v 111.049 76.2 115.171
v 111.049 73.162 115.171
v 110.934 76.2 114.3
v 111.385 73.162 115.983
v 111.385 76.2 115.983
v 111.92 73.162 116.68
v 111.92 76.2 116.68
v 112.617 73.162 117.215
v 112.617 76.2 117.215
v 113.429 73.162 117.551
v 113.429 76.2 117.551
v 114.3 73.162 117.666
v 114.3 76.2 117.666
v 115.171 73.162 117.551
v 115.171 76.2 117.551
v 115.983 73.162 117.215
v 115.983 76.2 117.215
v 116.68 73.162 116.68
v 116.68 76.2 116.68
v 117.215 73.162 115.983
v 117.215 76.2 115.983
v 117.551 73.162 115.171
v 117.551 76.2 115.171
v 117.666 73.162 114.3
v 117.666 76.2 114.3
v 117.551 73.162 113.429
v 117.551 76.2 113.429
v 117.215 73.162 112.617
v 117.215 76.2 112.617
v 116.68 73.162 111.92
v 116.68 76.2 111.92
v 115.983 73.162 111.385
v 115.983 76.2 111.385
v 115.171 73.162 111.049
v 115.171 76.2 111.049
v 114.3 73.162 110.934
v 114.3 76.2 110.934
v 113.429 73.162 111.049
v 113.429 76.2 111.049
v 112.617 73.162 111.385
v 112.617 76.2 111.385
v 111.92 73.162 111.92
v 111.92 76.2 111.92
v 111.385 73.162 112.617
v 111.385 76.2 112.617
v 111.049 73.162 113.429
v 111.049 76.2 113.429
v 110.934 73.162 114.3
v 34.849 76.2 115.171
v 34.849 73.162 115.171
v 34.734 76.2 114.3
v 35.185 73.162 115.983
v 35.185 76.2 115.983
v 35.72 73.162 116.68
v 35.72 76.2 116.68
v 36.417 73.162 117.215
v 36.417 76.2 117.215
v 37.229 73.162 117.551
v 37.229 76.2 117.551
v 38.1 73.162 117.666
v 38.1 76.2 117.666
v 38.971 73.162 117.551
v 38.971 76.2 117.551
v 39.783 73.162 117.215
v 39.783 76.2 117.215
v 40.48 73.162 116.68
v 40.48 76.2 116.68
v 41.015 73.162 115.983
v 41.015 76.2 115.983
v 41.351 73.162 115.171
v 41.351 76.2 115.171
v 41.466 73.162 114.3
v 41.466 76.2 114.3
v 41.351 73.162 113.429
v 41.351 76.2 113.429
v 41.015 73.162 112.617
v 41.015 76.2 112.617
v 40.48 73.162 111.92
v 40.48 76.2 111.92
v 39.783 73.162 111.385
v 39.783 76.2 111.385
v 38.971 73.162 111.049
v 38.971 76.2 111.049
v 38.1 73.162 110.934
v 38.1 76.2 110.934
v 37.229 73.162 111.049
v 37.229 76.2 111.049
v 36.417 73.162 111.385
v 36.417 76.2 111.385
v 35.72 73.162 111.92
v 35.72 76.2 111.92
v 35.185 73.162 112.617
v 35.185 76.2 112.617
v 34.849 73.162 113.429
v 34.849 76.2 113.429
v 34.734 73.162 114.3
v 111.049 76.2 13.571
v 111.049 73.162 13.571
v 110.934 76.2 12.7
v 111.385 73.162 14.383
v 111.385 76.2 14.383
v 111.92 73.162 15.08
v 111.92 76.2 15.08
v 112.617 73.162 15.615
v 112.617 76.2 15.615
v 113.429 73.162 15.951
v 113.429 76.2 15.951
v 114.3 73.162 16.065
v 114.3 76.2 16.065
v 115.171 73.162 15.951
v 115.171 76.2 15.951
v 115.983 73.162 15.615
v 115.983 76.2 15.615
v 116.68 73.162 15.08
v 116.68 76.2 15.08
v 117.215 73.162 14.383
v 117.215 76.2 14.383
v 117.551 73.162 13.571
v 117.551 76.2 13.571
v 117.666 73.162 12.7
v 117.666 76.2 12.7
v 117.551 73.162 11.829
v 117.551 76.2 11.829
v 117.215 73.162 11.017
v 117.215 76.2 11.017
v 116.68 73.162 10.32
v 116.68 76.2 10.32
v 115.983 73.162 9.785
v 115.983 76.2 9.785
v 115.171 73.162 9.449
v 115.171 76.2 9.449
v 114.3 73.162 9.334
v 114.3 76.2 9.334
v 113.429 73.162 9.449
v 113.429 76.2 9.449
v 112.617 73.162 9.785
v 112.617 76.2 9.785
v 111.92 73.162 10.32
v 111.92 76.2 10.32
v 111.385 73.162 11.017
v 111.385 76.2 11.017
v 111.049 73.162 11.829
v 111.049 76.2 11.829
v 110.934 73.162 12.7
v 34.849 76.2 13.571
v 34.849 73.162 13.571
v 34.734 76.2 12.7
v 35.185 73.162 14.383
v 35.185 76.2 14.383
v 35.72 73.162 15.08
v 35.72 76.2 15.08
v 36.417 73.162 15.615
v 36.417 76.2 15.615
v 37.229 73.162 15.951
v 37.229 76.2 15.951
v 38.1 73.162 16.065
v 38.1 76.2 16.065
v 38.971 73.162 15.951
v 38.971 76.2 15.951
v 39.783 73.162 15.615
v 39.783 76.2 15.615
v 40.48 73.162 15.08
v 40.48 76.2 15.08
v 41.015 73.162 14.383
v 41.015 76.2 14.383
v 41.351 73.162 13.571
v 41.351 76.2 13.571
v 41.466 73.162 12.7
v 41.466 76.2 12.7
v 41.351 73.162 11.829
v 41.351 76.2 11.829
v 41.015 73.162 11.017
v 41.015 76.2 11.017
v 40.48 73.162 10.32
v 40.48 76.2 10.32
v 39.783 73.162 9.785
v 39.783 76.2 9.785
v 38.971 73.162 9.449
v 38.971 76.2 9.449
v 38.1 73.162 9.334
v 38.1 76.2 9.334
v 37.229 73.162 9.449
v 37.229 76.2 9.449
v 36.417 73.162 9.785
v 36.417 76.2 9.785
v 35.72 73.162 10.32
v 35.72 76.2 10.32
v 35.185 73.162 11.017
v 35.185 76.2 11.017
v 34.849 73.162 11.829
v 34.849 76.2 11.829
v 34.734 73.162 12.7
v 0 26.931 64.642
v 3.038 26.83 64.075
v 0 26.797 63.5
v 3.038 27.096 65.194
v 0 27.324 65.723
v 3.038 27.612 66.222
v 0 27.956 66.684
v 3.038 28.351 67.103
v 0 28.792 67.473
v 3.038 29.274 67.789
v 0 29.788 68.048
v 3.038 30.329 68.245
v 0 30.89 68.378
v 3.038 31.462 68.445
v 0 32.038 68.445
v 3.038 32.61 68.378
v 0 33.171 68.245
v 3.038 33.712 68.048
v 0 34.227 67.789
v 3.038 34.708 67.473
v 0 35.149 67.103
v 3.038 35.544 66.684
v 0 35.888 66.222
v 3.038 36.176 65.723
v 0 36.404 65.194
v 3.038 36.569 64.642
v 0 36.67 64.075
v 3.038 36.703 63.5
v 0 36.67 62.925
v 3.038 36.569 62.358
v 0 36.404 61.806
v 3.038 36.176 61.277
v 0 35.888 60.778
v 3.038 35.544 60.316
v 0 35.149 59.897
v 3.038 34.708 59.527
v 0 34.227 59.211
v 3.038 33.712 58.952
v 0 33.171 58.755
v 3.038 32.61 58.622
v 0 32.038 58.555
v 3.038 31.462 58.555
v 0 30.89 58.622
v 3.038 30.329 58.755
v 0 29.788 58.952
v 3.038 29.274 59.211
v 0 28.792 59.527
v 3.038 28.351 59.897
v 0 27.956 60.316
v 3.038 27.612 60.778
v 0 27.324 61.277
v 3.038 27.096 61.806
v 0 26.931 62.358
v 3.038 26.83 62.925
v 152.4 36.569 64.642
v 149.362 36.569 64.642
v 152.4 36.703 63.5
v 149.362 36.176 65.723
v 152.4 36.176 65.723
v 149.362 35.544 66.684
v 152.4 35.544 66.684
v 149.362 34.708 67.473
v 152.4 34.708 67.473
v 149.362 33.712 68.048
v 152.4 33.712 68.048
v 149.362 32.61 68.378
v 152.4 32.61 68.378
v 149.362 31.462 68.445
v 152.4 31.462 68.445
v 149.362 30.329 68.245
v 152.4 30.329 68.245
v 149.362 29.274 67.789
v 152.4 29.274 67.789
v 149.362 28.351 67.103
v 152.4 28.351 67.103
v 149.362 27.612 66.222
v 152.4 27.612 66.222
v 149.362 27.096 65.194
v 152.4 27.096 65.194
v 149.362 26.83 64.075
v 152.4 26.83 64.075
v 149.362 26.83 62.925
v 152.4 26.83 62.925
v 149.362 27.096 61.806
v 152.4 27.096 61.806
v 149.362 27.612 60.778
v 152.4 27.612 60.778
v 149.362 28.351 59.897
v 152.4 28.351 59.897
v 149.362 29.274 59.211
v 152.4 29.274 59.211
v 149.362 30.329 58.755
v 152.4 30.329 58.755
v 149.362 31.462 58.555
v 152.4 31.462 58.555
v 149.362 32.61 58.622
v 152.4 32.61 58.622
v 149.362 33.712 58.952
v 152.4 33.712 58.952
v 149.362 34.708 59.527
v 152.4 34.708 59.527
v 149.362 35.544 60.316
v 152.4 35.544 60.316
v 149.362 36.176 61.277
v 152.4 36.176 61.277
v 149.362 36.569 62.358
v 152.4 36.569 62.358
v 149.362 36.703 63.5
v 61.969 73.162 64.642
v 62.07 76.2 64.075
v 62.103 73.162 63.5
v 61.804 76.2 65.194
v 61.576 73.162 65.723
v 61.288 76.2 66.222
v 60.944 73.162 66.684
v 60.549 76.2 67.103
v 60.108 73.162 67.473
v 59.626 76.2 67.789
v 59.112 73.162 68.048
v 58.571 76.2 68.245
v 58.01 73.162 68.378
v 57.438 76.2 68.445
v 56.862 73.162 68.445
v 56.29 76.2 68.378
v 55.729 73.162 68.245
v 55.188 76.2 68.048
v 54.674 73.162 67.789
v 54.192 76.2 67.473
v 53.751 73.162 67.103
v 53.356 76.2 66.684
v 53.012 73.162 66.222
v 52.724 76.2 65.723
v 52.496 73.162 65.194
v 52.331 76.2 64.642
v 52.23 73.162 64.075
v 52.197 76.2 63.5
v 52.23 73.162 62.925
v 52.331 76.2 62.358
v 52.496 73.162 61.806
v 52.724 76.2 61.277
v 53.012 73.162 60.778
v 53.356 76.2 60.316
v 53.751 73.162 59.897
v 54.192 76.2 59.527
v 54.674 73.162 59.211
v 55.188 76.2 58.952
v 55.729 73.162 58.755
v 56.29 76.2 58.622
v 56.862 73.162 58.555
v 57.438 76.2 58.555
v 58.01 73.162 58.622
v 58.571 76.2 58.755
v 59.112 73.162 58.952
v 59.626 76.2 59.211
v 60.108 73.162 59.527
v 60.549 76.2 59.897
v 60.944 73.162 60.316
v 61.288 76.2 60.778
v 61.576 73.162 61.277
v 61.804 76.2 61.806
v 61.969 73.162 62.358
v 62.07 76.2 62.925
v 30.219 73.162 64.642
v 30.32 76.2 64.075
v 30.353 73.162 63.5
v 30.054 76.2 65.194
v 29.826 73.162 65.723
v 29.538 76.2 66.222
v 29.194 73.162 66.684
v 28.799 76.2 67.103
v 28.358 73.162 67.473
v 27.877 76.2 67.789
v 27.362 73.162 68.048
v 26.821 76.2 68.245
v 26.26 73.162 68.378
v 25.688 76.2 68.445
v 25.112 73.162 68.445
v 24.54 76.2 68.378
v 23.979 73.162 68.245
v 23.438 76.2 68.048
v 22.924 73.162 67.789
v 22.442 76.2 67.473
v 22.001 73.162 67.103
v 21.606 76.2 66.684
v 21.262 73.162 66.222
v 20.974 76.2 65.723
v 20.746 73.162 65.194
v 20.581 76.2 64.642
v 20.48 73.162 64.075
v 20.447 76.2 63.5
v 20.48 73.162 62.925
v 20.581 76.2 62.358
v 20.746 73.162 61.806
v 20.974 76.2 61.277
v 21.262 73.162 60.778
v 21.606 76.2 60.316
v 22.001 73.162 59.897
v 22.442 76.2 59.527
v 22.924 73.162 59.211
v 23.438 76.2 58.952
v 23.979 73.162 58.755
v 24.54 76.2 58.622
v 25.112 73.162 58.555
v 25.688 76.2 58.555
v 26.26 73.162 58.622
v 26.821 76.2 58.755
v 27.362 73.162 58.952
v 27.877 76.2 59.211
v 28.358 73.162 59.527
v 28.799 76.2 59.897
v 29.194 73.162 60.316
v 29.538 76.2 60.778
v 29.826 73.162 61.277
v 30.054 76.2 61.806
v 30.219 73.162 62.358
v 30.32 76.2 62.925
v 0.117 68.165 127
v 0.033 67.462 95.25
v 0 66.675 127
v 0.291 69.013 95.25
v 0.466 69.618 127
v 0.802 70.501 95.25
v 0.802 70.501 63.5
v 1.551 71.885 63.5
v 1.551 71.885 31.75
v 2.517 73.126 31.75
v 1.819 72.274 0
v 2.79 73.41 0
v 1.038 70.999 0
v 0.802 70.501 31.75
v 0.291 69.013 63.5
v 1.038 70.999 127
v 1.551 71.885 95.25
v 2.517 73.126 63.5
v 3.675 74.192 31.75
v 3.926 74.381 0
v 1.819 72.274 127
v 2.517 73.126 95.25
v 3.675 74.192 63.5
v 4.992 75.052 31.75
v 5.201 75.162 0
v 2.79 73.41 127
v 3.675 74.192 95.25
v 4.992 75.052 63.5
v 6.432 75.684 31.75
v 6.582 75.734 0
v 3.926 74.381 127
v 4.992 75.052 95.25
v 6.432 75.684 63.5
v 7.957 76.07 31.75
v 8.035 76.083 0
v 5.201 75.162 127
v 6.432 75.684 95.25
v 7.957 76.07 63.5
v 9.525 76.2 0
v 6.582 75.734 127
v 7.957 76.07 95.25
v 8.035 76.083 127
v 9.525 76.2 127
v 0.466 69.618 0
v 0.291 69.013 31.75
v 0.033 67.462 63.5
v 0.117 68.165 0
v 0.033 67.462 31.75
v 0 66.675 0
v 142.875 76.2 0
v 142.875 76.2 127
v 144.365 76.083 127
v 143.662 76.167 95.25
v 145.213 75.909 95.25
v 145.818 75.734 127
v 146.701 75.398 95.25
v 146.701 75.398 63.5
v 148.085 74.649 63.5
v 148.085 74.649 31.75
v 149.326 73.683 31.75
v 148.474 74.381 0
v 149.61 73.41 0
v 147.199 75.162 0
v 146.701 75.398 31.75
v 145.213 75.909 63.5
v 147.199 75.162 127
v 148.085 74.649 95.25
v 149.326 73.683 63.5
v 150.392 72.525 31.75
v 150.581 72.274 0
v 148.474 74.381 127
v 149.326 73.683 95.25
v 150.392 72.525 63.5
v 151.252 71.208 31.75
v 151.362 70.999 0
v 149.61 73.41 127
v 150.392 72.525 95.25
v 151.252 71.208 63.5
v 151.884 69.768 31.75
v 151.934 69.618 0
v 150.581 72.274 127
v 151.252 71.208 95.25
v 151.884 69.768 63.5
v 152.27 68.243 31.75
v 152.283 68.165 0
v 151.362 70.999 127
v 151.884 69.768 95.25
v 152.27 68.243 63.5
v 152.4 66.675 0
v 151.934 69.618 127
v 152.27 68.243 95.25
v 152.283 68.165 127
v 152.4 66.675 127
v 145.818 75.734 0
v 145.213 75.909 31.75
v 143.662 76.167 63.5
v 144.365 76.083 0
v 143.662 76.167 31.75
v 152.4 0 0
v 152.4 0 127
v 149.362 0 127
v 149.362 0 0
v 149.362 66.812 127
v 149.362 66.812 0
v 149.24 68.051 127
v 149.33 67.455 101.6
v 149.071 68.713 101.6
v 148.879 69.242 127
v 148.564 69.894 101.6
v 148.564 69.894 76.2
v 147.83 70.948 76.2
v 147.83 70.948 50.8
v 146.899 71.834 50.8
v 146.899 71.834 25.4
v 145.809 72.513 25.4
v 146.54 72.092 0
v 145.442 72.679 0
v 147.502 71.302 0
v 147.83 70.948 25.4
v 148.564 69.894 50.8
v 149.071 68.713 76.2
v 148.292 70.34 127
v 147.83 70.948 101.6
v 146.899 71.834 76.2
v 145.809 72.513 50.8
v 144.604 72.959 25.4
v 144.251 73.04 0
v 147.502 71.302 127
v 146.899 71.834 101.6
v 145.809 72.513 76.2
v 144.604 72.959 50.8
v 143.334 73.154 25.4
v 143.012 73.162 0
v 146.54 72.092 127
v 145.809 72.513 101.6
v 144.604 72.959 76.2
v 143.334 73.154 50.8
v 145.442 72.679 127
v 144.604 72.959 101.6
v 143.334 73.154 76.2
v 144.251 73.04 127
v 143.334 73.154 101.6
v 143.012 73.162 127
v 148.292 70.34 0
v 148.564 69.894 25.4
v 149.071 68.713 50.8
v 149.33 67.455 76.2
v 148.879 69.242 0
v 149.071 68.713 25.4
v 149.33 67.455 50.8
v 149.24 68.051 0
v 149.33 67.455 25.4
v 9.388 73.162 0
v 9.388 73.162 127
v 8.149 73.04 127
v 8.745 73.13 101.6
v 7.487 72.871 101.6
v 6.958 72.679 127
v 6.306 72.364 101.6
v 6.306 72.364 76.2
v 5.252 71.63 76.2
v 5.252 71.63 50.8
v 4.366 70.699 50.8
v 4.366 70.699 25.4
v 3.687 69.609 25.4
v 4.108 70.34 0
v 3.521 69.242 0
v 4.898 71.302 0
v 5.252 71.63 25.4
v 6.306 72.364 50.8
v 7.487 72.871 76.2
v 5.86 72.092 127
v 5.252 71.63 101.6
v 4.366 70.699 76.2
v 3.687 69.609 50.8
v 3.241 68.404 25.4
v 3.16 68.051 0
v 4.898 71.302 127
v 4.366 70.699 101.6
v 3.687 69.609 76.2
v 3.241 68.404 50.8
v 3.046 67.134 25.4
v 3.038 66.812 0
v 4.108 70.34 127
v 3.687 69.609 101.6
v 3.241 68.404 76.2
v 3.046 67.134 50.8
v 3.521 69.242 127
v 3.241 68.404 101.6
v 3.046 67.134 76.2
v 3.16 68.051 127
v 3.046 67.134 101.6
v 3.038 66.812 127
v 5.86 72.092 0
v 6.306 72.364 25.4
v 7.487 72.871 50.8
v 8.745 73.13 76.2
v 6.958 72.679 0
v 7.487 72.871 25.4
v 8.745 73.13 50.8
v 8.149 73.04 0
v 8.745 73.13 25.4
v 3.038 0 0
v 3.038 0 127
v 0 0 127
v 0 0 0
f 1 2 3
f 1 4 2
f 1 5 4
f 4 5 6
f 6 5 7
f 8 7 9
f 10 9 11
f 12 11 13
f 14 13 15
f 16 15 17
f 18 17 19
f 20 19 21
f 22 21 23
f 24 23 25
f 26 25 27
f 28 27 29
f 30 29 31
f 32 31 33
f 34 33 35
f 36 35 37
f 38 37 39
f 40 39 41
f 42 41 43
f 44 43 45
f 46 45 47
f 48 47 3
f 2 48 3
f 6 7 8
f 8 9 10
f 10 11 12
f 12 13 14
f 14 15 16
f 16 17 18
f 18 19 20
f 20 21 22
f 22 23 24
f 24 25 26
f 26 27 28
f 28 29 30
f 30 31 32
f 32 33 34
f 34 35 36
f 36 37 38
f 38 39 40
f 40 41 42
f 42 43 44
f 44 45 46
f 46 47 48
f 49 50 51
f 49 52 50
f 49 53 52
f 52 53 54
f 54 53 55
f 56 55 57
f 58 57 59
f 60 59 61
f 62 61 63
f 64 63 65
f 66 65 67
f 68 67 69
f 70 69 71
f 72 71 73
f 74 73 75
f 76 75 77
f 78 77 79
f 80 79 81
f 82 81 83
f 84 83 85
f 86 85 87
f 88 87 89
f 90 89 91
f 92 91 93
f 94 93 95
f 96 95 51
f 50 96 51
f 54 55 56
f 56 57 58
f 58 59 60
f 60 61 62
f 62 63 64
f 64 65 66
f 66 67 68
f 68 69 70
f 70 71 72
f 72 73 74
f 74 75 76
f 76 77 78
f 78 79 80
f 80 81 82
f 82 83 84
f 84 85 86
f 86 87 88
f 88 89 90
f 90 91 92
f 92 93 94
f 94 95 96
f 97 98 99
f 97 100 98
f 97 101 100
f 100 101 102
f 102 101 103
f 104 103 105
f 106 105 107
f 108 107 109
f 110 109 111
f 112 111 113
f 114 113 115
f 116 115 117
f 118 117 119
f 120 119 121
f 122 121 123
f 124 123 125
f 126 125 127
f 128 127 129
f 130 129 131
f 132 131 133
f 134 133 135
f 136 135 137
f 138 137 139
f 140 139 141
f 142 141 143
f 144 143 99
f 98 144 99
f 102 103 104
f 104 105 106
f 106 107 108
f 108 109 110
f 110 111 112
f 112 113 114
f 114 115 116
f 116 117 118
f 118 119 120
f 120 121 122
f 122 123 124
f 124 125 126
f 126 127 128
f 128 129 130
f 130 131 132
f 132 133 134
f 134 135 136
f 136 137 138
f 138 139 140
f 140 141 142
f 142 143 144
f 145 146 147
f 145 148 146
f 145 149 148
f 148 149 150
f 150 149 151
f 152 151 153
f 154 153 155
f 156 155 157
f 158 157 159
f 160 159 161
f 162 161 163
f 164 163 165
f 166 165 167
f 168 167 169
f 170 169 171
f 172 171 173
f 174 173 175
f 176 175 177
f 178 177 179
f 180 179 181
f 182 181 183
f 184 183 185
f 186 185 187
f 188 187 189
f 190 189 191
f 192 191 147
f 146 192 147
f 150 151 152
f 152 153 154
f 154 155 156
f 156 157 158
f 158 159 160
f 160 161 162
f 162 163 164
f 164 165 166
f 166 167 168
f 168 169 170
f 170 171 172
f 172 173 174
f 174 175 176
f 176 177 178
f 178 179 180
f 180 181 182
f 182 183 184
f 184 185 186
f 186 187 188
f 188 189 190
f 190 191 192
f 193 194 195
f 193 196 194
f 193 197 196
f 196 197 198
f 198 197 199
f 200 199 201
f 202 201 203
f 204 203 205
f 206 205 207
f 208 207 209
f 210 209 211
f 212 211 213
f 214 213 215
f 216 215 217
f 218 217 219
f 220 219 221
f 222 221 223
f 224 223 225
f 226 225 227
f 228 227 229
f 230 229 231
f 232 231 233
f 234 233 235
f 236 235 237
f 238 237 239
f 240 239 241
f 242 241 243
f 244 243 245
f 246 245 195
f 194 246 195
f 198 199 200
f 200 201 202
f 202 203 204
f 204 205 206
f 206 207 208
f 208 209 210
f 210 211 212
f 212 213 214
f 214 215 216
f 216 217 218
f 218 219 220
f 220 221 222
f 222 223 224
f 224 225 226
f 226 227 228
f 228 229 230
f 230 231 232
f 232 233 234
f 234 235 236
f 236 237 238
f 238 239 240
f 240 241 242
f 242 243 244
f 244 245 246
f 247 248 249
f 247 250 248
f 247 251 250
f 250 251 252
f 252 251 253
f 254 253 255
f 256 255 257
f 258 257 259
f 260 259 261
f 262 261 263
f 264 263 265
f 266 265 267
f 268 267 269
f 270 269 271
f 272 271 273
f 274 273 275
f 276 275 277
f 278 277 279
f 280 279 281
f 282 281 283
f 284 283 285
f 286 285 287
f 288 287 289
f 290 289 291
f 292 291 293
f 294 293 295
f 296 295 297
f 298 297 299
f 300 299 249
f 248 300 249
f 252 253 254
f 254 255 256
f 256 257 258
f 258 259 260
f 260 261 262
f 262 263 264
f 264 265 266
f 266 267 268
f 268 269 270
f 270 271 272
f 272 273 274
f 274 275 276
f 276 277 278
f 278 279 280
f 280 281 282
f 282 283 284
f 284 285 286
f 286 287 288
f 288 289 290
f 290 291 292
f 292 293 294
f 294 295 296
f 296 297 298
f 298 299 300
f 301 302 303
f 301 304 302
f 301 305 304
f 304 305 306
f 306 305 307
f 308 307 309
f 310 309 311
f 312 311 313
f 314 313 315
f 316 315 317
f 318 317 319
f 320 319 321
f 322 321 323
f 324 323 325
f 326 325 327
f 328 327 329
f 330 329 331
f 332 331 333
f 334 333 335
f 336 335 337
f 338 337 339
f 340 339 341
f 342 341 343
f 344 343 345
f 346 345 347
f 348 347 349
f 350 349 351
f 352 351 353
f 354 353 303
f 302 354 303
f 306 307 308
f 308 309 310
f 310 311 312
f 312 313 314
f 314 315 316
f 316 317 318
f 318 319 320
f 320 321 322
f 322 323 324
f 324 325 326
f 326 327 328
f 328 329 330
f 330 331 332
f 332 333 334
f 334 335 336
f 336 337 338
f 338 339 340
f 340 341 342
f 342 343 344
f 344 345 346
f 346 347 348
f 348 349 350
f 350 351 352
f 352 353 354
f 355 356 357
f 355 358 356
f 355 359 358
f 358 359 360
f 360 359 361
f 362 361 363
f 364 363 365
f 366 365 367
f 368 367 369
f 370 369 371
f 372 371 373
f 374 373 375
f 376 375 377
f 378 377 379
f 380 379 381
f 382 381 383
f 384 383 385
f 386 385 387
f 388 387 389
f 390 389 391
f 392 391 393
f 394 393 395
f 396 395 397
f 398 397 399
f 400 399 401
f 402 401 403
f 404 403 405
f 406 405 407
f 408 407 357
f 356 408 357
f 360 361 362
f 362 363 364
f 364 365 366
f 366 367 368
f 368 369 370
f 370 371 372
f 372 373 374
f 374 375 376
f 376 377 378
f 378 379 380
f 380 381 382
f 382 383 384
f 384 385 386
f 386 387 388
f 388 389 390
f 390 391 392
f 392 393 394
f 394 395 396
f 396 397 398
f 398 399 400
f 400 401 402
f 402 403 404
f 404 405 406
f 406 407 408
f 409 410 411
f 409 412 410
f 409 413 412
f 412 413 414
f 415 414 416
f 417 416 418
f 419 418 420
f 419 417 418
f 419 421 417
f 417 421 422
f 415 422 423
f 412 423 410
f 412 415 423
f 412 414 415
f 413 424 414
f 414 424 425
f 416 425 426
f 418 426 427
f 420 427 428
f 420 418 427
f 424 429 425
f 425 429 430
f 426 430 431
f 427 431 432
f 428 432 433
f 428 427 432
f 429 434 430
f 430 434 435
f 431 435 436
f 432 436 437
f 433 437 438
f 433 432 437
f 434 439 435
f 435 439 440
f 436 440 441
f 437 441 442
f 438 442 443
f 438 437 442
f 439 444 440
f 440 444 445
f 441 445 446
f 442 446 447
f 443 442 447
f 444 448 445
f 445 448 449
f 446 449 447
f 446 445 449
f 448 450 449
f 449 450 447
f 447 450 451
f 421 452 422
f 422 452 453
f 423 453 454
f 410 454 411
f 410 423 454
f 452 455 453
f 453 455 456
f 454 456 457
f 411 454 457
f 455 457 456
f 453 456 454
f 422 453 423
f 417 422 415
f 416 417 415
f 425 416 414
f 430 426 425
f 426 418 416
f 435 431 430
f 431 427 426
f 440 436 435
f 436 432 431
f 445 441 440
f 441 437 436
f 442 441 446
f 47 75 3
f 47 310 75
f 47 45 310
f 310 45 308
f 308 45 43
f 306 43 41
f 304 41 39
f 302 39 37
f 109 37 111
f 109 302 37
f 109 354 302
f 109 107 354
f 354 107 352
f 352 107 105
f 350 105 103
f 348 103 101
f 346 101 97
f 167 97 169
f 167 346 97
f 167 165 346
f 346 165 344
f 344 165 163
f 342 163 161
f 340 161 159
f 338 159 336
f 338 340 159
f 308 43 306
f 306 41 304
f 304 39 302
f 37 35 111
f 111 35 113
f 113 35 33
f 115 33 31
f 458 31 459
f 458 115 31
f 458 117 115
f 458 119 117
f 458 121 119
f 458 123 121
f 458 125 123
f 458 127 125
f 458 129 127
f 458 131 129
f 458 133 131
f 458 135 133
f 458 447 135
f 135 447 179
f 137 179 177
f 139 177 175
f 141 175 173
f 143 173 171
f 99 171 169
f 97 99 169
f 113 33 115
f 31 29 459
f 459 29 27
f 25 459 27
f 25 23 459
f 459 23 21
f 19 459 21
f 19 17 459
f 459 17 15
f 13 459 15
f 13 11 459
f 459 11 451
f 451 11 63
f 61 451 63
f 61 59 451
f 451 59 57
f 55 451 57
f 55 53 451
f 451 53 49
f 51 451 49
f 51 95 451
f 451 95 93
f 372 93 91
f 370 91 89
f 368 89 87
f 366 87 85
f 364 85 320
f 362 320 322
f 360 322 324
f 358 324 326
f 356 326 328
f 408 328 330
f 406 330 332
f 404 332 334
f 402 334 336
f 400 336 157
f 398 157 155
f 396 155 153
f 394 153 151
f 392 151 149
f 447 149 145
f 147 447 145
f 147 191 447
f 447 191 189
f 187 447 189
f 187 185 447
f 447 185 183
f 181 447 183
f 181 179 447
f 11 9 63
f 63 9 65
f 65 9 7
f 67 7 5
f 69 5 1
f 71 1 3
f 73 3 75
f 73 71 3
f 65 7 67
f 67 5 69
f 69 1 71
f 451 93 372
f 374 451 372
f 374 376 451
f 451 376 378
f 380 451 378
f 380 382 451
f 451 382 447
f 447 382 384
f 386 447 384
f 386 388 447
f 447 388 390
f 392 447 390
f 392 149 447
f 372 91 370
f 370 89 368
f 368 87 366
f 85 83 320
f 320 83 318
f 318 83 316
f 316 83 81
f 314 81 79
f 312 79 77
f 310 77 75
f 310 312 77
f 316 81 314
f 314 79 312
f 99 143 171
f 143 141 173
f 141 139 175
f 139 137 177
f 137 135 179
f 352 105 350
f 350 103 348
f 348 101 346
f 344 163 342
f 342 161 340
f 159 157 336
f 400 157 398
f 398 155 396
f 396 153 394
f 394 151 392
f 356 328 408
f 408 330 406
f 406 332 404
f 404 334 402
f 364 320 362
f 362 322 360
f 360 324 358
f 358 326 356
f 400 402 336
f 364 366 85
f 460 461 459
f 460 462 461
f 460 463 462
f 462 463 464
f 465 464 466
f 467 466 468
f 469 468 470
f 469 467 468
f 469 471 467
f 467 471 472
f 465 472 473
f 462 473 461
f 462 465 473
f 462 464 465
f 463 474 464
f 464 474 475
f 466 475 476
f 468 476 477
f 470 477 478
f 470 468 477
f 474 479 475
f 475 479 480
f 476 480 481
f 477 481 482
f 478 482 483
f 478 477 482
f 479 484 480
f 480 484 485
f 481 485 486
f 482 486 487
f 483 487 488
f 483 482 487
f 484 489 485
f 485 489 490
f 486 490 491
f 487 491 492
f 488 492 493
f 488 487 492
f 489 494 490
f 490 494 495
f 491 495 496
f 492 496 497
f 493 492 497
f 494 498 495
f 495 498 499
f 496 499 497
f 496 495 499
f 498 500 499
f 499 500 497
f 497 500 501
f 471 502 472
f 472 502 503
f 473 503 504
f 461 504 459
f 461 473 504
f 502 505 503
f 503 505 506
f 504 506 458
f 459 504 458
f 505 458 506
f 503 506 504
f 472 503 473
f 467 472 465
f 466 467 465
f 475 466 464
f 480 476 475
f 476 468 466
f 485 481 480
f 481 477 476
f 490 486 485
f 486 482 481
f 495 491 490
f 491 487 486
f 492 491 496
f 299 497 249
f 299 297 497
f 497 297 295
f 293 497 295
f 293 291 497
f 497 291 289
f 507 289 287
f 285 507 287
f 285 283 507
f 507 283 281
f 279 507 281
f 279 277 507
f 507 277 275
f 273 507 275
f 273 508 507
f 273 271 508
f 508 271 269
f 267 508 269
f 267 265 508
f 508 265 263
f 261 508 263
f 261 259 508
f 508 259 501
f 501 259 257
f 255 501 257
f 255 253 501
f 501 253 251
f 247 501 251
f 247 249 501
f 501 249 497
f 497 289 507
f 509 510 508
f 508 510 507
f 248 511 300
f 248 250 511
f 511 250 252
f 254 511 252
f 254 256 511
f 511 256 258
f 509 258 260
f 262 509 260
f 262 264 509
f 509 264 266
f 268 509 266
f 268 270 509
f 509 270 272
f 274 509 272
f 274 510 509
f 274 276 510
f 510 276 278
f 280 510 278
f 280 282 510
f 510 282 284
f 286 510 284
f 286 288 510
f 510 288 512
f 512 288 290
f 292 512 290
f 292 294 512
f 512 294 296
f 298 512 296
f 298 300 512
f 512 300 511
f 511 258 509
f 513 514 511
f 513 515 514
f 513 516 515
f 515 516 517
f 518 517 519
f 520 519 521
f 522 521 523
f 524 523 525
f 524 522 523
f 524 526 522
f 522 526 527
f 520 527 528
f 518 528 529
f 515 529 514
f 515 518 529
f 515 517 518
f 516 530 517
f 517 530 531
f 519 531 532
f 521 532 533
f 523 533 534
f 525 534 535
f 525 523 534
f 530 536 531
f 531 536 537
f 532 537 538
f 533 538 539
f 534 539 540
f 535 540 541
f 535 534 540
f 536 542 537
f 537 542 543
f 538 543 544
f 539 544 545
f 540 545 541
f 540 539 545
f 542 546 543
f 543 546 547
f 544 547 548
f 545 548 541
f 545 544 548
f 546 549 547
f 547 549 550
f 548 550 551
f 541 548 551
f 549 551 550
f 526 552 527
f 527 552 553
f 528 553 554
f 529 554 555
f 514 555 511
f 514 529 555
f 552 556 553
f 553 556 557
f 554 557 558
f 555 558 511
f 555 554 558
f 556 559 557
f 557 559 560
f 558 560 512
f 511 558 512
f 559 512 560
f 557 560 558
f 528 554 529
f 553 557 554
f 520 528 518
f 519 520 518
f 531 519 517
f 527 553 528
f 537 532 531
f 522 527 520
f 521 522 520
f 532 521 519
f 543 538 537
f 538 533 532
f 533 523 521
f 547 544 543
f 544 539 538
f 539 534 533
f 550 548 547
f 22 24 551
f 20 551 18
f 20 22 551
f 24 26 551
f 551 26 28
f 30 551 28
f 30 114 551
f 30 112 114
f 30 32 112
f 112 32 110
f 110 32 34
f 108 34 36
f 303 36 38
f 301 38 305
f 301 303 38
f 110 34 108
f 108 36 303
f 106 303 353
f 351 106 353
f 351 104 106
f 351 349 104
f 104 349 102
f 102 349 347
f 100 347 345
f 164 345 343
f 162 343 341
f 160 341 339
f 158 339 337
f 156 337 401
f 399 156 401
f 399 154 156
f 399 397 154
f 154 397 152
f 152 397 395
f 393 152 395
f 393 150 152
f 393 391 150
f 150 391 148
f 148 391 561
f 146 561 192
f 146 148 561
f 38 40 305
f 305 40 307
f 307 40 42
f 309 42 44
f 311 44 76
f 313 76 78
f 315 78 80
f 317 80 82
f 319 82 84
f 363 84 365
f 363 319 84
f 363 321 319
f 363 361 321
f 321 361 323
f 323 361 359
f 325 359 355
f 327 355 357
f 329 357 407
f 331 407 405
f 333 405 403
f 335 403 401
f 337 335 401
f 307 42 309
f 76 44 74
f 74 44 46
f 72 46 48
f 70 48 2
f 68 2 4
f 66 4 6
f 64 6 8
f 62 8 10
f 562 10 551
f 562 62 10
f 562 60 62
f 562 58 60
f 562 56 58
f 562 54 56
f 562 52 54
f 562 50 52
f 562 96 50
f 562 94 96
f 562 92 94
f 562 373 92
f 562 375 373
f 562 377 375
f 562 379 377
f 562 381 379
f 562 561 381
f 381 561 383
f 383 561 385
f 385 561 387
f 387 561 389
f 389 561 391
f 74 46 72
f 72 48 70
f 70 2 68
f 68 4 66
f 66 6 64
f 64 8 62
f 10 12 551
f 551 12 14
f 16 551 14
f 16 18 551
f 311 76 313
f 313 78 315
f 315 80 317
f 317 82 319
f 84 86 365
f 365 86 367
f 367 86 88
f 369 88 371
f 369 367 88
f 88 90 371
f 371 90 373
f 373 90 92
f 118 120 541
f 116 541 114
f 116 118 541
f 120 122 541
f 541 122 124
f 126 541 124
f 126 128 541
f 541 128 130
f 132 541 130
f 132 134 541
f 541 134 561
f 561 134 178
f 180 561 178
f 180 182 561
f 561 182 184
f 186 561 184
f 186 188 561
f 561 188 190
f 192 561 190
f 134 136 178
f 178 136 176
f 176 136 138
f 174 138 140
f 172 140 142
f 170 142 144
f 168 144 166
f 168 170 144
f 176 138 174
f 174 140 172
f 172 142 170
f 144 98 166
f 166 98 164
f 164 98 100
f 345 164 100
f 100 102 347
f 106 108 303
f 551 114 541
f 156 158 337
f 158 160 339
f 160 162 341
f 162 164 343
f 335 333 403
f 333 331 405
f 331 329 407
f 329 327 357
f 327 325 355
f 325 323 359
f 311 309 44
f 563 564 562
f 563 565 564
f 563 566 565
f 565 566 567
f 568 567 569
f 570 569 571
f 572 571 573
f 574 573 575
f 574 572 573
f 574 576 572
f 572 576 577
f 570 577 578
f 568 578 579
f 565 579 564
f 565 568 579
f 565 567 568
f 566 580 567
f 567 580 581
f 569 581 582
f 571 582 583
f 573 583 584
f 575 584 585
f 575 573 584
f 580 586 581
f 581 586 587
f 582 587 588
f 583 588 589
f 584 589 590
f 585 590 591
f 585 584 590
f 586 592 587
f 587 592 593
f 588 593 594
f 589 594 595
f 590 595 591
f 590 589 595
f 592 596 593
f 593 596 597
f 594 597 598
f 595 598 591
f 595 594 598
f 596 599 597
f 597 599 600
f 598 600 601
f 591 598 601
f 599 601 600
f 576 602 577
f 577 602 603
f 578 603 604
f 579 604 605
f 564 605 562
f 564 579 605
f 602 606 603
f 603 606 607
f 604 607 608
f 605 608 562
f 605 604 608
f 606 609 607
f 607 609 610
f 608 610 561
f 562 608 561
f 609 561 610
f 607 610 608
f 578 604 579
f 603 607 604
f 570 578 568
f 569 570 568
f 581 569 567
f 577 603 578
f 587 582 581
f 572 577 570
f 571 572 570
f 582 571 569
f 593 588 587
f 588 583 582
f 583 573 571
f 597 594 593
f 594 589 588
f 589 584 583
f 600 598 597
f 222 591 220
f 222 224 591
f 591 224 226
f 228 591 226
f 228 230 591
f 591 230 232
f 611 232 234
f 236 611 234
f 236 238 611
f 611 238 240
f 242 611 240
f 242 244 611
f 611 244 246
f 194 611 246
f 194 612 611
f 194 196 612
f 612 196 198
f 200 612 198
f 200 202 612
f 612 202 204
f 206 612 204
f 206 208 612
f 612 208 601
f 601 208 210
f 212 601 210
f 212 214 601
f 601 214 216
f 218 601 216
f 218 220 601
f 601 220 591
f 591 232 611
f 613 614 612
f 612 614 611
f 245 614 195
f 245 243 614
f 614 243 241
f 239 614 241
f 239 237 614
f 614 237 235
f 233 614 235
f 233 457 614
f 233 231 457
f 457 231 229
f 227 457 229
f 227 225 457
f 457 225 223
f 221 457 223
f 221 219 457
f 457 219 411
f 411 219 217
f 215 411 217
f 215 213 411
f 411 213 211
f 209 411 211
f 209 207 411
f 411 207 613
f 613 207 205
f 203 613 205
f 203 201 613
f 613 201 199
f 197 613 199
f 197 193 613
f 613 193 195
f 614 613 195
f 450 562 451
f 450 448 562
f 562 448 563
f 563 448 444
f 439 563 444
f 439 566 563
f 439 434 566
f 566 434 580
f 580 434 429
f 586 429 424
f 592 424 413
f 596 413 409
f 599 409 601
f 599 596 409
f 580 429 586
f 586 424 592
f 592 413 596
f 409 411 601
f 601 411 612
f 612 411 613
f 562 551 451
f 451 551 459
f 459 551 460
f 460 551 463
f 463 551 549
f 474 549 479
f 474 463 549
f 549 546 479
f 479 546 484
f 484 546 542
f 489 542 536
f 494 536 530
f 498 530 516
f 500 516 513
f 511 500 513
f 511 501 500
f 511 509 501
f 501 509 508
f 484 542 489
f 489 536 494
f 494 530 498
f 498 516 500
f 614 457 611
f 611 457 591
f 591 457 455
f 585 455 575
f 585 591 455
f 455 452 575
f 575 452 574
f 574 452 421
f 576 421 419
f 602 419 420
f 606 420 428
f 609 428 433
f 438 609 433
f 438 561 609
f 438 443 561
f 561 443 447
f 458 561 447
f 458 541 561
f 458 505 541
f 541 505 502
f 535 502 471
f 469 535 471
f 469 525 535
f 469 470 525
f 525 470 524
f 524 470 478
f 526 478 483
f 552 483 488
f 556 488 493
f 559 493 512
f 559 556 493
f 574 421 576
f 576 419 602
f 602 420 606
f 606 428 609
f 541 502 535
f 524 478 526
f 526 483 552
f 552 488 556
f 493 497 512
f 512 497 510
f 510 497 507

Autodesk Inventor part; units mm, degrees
ref_plane "YZ Plane" through (0, 0, 0) normal (1, 0, 0) x (0, 1, 0)
ref_plane "XZ Plane" through (0, 0, 0) normal (0, 1, 0) x (-1, 0, 0)
ref_plane "XY Plane" through (0, 0, 0) normal (0, 0, 1) x (1, 0, 0)
sketch "Sketch1" plane through (0, 0, 0) normal (0, 0, 1) x (1, 0, 0)
  line L0 (0, 0) -> (0, 66.675)
  line L1 (9.525, 76.2) -> (142.875, 76.2)
  line L2 (152.4, 66.675) -> (152.4, 0)
  line L3 (152.4, 0) -> (149.3622, 0)
  line L4 (149.3622, 0) -> (149.3622, 66.8122)
  line L5 (143.0122, 73.1622) -> (9.3878, 73.1622)
  line L6 (3.0378, 66.8122) -> (3.0378, 0)
  line L7 (3.0378, 0) -> (0, 0)
  arc A0 (9.3878, 73.1622) -> (3.0378, 66.8122) centre (9.3878, 66.8122) ccw
  arc A1 (149.3622, 66.8122) -> (143.0122, 73.1622) centre (143.0122, 66.8122) ccw
  arc A2 (9.525, 76.2) -> (0, 66.675) centre (9.525, 66.675) ccw
  arc A3 (152.4, 66.675) -> (142.875, 76.2) centre (142.875, 66.675) ccw
  point P0 (0, 76.2)
  point P1 (152.4, 76.2)
  dimension "d0" = 76.2
  dimension "d1" = 3.0378
  dimension "d2" = 3.0378
  dimension "d3" = 152.4
  dimension "d4" = 6.35
  dimension "d5" = 9.525
extrude "Extrusion1" add sketch "Sketch1" along normal blind 127
hole "Hole1" at (25.4, 76.2, 63.5) direction (0, -1, 0) diameter 9.906 end through all
pattern_linear "Rectangular Pattern1" count 2 spacing 31.75 along (1, 0, 0) of "Hole1"
hole "Hole2" at (0, 31.75, 63.5) direction (1, 0, 0) diameter 9.906 end through all
hole "Hole3" at (38.1, 73.1622, 12.7) direction (0, 1, 0) diameter 6.731 depth 25.4 tip angle 118
pattern_linear "Rectangular Pattern2" count 2 spacing 76.2 along (1, 0, 0) count 2 spacing 101.6 along (0, 0, 1) of "Hole3"
equation "\"d2\" = d1"
properties part number "GE-12025" material "Steel"
